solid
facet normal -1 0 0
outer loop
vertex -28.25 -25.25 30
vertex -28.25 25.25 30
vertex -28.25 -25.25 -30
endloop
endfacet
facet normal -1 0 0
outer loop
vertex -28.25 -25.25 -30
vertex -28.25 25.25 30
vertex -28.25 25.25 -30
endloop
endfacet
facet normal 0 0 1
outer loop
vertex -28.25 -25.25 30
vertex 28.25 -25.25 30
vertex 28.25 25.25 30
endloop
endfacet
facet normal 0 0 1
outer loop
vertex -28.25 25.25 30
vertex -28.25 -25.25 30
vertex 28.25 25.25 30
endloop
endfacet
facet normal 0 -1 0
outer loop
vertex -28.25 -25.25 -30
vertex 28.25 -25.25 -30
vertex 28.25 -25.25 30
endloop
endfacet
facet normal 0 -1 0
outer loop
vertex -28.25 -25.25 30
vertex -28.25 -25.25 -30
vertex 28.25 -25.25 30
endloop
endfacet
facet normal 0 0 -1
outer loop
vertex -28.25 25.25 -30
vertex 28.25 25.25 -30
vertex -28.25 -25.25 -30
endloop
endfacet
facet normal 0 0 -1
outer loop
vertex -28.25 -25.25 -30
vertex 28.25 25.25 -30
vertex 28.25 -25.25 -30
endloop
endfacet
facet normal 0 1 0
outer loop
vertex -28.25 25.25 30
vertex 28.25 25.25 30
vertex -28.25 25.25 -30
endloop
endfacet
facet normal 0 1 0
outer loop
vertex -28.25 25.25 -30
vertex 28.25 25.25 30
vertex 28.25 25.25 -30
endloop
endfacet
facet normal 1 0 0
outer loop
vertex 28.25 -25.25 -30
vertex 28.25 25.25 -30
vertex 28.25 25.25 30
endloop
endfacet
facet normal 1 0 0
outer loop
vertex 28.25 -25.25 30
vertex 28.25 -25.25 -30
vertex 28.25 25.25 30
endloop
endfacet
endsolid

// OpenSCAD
// width=115, depth=103, height=60

w=115/2;
h=103/2;
d=60;
// difference() {
	cube([w-1,h-1,d],center=true);
	// cube([w-])
// }
